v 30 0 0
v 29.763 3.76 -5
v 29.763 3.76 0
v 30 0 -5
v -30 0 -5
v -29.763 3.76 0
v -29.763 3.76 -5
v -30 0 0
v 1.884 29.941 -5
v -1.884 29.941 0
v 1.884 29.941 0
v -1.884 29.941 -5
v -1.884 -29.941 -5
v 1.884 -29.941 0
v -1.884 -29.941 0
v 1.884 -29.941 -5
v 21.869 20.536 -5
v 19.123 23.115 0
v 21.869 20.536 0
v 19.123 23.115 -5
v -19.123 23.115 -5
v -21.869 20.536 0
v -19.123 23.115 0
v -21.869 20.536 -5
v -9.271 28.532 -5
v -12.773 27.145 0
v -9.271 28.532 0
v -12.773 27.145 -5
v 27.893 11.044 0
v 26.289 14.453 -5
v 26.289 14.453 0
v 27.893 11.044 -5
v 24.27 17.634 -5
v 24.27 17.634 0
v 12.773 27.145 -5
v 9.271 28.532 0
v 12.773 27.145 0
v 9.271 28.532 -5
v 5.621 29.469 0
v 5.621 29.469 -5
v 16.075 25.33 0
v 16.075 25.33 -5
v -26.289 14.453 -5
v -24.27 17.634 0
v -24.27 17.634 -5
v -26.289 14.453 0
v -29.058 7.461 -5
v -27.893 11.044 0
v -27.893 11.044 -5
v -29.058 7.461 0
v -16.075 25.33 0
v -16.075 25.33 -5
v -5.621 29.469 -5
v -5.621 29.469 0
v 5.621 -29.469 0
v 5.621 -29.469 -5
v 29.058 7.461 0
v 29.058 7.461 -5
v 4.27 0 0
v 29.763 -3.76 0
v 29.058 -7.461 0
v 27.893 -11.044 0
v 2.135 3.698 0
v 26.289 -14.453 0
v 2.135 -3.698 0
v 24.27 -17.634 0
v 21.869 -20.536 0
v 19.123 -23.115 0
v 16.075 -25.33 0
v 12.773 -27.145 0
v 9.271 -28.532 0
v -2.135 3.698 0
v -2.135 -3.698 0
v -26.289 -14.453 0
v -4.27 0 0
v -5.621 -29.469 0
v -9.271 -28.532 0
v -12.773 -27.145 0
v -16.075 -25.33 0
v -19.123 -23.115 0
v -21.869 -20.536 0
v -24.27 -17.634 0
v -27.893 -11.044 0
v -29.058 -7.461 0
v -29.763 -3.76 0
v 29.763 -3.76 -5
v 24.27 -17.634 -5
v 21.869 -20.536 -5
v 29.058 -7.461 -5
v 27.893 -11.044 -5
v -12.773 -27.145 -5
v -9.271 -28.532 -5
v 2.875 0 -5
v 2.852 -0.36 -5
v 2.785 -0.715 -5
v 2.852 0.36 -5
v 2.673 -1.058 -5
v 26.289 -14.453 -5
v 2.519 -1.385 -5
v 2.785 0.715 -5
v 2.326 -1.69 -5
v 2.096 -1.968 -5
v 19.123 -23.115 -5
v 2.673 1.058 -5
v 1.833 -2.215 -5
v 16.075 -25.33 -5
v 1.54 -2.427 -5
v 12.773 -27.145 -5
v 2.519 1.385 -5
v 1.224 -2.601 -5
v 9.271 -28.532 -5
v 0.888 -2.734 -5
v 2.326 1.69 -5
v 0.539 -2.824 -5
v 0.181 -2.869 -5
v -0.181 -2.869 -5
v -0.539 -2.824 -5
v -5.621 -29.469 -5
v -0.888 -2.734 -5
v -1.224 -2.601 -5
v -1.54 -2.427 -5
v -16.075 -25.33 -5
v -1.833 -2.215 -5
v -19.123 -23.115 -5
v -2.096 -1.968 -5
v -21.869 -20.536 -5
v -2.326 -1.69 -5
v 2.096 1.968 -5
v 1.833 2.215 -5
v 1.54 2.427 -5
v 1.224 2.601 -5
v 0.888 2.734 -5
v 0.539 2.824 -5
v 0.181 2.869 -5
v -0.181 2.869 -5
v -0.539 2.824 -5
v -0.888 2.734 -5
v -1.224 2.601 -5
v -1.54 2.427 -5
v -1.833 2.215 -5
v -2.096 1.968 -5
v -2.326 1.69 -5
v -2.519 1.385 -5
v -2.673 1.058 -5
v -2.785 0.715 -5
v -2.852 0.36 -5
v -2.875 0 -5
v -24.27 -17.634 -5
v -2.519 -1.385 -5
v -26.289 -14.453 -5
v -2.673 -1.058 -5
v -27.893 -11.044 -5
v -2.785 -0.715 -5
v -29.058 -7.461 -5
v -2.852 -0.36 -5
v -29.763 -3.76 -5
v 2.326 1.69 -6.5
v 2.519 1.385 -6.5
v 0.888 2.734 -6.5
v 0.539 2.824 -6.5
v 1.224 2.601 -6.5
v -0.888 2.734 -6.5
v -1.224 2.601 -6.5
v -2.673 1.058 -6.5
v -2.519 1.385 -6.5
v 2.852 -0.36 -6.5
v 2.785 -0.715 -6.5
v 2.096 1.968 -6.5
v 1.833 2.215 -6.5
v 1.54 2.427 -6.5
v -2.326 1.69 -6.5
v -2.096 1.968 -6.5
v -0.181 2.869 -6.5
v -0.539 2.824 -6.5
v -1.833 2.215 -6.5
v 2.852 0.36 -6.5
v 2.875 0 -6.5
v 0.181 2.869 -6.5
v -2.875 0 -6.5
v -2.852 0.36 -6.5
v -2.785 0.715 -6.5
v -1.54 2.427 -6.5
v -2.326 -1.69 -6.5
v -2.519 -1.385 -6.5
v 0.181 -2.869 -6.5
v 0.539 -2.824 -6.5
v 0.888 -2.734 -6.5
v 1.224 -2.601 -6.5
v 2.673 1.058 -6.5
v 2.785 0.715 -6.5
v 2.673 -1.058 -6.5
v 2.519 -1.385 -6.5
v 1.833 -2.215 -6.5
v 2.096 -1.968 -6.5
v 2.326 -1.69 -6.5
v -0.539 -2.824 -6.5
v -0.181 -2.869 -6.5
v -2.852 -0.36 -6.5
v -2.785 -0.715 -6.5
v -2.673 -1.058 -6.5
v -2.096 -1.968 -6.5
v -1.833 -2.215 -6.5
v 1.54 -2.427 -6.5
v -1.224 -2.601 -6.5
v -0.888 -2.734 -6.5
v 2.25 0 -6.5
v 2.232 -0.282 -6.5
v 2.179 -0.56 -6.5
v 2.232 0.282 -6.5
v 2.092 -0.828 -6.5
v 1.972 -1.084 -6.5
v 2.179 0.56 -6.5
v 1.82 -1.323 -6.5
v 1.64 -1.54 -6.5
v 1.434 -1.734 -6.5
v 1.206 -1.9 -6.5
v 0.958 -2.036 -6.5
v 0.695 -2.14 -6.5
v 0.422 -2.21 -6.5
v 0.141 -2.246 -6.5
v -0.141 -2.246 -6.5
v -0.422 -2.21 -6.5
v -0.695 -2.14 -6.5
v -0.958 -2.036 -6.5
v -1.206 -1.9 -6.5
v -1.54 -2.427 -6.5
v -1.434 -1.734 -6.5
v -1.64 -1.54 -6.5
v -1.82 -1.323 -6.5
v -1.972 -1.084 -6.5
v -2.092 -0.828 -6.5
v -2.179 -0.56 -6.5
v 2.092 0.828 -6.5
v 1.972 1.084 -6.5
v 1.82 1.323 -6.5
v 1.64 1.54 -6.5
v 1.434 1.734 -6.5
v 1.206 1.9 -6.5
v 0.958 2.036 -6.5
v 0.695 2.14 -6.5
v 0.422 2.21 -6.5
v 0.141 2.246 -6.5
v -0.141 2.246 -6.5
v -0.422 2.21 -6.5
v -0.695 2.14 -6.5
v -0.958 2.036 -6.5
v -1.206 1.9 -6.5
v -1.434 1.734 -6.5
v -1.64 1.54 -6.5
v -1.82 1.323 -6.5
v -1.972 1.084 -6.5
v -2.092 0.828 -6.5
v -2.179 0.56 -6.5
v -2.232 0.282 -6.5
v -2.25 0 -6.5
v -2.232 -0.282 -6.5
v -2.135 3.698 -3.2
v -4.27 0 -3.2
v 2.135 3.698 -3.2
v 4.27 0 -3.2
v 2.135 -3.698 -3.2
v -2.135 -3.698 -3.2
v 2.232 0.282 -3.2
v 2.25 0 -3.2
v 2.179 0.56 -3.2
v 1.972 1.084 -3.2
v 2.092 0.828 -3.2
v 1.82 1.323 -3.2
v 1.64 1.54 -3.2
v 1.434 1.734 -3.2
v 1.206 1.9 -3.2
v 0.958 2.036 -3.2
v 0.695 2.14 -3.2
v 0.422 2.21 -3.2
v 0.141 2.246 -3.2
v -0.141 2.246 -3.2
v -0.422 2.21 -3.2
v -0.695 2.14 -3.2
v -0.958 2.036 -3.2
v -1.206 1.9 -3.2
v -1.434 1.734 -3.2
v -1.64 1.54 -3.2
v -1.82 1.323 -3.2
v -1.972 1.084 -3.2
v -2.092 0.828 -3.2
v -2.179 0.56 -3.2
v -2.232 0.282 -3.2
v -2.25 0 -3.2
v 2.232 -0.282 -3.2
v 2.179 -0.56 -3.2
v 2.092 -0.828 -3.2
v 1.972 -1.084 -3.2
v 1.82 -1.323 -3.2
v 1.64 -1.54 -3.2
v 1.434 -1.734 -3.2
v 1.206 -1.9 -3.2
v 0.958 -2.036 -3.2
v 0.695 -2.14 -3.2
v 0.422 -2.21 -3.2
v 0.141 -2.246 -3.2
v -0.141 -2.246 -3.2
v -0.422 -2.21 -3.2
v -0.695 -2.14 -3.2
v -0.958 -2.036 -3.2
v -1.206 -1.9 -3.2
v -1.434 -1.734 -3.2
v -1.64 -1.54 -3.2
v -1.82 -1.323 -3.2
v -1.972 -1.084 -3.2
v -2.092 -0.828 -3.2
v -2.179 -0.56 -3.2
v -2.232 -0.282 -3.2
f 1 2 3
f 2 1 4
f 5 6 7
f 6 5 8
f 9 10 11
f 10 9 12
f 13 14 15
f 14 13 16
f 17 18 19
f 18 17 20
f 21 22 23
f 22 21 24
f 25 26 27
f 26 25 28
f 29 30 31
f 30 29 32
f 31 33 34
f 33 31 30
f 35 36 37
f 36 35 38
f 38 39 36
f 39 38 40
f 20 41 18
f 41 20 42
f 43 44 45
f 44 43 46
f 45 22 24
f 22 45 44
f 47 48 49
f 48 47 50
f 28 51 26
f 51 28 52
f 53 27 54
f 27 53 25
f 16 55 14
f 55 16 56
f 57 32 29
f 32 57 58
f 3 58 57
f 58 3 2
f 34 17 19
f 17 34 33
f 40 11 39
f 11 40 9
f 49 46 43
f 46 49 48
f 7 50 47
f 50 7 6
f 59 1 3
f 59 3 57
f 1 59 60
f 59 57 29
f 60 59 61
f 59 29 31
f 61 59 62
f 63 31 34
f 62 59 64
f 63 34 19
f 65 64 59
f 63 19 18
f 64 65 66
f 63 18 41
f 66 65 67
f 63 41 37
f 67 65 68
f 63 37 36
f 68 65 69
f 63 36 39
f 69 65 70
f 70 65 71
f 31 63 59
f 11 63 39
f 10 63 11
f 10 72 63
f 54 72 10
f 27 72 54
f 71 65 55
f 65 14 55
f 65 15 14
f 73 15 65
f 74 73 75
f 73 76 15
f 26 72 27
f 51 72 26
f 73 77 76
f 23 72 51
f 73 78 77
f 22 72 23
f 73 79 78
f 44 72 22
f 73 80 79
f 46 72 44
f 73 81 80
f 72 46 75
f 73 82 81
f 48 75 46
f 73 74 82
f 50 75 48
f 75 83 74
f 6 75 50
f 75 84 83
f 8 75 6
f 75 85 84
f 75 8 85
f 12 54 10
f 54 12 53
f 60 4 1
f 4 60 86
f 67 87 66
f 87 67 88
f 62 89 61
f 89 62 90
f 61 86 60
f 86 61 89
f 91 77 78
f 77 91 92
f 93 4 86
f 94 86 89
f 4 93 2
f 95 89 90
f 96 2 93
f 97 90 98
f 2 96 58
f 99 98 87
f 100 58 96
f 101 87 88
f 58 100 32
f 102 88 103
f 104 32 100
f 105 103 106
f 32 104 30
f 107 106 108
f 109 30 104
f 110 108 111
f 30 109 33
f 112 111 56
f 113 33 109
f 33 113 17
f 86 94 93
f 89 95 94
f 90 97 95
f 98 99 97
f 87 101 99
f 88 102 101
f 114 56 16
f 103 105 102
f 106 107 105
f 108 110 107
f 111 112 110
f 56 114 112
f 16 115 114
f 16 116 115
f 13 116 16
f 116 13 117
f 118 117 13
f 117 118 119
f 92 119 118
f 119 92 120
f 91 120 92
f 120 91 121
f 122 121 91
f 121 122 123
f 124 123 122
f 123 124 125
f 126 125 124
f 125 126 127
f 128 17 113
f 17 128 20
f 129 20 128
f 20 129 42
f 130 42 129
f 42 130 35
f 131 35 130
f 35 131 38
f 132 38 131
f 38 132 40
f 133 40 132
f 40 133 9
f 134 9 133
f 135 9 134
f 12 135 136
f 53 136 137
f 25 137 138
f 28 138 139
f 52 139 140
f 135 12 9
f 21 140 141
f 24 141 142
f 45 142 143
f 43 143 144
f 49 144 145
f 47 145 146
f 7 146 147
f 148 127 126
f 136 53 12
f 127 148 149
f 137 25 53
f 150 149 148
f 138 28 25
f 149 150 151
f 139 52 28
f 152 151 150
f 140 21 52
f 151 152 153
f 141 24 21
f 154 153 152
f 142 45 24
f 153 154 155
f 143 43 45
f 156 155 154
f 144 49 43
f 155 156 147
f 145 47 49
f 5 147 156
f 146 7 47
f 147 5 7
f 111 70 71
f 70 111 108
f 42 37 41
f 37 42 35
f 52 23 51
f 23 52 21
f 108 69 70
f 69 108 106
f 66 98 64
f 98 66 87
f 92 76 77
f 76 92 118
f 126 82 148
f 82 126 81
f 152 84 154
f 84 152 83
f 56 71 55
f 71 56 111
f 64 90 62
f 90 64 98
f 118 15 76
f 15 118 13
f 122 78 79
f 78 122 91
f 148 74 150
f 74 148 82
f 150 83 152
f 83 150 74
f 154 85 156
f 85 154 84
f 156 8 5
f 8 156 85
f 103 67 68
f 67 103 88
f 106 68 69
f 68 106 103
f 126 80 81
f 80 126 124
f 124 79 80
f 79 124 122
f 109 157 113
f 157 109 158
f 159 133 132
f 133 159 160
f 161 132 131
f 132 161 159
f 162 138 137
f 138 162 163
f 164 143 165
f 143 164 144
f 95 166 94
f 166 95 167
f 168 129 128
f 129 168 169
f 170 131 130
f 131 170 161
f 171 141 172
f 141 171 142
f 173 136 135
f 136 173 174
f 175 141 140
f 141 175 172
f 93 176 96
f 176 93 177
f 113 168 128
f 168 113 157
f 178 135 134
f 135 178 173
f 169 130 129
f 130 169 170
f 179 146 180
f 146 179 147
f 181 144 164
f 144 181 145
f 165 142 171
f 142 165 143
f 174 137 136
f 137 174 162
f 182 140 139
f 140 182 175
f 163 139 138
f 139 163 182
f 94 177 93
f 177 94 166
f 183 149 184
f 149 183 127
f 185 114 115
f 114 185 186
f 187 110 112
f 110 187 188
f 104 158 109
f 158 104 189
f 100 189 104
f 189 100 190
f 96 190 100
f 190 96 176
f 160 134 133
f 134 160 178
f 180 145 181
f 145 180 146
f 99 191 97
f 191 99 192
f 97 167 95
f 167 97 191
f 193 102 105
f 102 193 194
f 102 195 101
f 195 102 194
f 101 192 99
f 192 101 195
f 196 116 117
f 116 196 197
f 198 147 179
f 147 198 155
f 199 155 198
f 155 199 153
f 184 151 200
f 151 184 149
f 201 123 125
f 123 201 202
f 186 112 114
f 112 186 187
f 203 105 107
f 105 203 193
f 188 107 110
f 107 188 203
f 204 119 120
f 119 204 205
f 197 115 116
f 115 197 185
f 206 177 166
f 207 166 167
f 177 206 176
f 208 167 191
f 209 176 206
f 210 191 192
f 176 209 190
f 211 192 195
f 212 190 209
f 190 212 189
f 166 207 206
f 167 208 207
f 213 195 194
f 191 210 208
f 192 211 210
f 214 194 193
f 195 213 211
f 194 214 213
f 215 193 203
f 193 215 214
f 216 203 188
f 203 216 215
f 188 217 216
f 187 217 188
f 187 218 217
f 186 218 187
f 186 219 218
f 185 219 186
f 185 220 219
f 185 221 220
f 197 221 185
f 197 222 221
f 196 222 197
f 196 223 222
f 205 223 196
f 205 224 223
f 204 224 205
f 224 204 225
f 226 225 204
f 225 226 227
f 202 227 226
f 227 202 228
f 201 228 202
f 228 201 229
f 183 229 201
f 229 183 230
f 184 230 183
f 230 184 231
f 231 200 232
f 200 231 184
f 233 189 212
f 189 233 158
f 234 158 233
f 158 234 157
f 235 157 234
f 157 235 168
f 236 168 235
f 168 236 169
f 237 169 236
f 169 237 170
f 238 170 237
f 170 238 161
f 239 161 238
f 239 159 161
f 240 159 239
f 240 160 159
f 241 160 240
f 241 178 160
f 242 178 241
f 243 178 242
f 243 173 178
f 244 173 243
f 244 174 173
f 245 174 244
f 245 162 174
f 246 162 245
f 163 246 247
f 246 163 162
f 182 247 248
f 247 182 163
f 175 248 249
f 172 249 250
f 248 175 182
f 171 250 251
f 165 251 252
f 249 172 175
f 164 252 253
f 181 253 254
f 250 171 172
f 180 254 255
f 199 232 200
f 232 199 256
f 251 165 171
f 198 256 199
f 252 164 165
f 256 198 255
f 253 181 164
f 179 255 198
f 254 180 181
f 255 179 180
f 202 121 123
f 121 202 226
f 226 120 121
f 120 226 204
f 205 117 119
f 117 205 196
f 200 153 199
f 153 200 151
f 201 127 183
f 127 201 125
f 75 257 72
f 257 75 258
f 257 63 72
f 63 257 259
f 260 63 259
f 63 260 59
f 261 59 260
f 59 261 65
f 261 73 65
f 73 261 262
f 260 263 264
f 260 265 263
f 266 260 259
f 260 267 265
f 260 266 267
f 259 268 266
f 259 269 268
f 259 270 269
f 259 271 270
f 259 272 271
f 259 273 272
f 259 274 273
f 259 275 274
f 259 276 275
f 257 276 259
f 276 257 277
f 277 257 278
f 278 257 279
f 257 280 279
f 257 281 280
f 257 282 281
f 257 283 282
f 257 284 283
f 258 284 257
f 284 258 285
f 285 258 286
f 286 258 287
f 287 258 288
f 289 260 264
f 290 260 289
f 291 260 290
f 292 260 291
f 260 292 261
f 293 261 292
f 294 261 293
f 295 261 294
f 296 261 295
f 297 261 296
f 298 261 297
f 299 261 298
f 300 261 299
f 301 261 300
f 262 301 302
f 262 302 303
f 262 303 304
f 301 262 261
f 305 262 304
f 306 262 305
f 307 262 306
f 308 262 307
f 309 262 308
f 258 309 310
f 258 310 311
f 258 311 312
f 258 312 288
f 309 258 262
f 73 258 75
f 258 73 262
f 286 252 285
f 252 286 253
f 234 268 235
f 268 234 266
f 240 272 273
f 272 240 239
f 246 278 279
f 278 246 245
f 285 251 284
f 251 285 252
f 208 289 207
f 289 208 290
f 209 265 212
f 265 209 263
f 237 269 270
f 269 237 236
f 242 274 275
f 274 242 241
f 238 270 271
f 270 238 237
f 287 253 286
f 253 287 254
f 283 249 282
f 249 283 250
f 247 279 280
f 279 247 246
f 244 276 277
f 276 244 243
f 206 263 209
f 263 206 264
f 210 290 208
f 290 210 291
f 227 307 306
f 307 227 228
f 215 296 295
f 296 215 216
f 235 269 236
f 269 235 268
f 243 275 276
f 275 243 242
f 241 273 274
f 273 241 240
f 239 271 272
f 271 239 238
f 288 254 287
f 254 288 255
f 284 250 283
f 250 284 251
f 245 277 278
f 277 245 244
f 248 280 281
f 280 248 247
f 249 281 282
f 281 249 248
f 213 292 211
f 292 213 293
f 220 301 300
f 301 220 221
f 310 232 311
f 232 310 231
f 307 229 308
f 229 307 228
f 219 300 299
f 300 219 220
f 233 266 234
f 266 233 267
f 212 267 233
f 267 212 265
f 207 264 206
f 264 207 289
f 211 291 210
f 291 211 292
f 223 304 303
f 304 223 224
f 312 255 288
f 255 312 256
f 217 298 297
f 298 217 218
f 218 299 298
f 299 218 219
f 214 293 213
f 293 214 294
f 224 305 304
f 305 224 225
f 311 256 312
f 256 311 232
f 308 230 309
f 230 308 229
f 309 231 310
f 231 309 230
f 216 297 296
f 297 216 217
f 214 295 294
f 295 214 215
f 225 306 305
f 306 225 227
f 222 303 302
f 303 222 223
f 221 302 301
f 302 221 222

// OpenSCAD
$fn = 50;


difference() {
	union() {
		translate(v = [0, 0, -5.0000000000]) {
			cylinder(h = 5.0000000000, r = 30.0000000000);
		}
		#translate(v = [0, 0, -6.5000000000]) {
			cylinder(h = 6.5000000000, r = 2.8750000000);
		}
	}
	union() {
		translate(v = [0, 0, 0]) {
			rotate(a = [0, 0, 0]) {
				difference() {
					union() {
						translate(v = [0, 0, -3.2000000000]) {
							linear_extrude(height = 3.2000000000) {
								polygon(points = [[4.2698000000, 0.0000000000], [2.1349000000, 3.6977552691], [-2.1349000000, 3.6977552691], [-4.2698000000, 0.0000000000], [-2.1349000000, -3.6977552691], [2.1349000000, -3.6977552691]]);
							}
						}
					}
					union();
				}
			}
		}
		#translate(v = [0, 0, -100.0000000000]) {
			cylinder(h = 200, r = 2.2500000000);
		}
	}
}
